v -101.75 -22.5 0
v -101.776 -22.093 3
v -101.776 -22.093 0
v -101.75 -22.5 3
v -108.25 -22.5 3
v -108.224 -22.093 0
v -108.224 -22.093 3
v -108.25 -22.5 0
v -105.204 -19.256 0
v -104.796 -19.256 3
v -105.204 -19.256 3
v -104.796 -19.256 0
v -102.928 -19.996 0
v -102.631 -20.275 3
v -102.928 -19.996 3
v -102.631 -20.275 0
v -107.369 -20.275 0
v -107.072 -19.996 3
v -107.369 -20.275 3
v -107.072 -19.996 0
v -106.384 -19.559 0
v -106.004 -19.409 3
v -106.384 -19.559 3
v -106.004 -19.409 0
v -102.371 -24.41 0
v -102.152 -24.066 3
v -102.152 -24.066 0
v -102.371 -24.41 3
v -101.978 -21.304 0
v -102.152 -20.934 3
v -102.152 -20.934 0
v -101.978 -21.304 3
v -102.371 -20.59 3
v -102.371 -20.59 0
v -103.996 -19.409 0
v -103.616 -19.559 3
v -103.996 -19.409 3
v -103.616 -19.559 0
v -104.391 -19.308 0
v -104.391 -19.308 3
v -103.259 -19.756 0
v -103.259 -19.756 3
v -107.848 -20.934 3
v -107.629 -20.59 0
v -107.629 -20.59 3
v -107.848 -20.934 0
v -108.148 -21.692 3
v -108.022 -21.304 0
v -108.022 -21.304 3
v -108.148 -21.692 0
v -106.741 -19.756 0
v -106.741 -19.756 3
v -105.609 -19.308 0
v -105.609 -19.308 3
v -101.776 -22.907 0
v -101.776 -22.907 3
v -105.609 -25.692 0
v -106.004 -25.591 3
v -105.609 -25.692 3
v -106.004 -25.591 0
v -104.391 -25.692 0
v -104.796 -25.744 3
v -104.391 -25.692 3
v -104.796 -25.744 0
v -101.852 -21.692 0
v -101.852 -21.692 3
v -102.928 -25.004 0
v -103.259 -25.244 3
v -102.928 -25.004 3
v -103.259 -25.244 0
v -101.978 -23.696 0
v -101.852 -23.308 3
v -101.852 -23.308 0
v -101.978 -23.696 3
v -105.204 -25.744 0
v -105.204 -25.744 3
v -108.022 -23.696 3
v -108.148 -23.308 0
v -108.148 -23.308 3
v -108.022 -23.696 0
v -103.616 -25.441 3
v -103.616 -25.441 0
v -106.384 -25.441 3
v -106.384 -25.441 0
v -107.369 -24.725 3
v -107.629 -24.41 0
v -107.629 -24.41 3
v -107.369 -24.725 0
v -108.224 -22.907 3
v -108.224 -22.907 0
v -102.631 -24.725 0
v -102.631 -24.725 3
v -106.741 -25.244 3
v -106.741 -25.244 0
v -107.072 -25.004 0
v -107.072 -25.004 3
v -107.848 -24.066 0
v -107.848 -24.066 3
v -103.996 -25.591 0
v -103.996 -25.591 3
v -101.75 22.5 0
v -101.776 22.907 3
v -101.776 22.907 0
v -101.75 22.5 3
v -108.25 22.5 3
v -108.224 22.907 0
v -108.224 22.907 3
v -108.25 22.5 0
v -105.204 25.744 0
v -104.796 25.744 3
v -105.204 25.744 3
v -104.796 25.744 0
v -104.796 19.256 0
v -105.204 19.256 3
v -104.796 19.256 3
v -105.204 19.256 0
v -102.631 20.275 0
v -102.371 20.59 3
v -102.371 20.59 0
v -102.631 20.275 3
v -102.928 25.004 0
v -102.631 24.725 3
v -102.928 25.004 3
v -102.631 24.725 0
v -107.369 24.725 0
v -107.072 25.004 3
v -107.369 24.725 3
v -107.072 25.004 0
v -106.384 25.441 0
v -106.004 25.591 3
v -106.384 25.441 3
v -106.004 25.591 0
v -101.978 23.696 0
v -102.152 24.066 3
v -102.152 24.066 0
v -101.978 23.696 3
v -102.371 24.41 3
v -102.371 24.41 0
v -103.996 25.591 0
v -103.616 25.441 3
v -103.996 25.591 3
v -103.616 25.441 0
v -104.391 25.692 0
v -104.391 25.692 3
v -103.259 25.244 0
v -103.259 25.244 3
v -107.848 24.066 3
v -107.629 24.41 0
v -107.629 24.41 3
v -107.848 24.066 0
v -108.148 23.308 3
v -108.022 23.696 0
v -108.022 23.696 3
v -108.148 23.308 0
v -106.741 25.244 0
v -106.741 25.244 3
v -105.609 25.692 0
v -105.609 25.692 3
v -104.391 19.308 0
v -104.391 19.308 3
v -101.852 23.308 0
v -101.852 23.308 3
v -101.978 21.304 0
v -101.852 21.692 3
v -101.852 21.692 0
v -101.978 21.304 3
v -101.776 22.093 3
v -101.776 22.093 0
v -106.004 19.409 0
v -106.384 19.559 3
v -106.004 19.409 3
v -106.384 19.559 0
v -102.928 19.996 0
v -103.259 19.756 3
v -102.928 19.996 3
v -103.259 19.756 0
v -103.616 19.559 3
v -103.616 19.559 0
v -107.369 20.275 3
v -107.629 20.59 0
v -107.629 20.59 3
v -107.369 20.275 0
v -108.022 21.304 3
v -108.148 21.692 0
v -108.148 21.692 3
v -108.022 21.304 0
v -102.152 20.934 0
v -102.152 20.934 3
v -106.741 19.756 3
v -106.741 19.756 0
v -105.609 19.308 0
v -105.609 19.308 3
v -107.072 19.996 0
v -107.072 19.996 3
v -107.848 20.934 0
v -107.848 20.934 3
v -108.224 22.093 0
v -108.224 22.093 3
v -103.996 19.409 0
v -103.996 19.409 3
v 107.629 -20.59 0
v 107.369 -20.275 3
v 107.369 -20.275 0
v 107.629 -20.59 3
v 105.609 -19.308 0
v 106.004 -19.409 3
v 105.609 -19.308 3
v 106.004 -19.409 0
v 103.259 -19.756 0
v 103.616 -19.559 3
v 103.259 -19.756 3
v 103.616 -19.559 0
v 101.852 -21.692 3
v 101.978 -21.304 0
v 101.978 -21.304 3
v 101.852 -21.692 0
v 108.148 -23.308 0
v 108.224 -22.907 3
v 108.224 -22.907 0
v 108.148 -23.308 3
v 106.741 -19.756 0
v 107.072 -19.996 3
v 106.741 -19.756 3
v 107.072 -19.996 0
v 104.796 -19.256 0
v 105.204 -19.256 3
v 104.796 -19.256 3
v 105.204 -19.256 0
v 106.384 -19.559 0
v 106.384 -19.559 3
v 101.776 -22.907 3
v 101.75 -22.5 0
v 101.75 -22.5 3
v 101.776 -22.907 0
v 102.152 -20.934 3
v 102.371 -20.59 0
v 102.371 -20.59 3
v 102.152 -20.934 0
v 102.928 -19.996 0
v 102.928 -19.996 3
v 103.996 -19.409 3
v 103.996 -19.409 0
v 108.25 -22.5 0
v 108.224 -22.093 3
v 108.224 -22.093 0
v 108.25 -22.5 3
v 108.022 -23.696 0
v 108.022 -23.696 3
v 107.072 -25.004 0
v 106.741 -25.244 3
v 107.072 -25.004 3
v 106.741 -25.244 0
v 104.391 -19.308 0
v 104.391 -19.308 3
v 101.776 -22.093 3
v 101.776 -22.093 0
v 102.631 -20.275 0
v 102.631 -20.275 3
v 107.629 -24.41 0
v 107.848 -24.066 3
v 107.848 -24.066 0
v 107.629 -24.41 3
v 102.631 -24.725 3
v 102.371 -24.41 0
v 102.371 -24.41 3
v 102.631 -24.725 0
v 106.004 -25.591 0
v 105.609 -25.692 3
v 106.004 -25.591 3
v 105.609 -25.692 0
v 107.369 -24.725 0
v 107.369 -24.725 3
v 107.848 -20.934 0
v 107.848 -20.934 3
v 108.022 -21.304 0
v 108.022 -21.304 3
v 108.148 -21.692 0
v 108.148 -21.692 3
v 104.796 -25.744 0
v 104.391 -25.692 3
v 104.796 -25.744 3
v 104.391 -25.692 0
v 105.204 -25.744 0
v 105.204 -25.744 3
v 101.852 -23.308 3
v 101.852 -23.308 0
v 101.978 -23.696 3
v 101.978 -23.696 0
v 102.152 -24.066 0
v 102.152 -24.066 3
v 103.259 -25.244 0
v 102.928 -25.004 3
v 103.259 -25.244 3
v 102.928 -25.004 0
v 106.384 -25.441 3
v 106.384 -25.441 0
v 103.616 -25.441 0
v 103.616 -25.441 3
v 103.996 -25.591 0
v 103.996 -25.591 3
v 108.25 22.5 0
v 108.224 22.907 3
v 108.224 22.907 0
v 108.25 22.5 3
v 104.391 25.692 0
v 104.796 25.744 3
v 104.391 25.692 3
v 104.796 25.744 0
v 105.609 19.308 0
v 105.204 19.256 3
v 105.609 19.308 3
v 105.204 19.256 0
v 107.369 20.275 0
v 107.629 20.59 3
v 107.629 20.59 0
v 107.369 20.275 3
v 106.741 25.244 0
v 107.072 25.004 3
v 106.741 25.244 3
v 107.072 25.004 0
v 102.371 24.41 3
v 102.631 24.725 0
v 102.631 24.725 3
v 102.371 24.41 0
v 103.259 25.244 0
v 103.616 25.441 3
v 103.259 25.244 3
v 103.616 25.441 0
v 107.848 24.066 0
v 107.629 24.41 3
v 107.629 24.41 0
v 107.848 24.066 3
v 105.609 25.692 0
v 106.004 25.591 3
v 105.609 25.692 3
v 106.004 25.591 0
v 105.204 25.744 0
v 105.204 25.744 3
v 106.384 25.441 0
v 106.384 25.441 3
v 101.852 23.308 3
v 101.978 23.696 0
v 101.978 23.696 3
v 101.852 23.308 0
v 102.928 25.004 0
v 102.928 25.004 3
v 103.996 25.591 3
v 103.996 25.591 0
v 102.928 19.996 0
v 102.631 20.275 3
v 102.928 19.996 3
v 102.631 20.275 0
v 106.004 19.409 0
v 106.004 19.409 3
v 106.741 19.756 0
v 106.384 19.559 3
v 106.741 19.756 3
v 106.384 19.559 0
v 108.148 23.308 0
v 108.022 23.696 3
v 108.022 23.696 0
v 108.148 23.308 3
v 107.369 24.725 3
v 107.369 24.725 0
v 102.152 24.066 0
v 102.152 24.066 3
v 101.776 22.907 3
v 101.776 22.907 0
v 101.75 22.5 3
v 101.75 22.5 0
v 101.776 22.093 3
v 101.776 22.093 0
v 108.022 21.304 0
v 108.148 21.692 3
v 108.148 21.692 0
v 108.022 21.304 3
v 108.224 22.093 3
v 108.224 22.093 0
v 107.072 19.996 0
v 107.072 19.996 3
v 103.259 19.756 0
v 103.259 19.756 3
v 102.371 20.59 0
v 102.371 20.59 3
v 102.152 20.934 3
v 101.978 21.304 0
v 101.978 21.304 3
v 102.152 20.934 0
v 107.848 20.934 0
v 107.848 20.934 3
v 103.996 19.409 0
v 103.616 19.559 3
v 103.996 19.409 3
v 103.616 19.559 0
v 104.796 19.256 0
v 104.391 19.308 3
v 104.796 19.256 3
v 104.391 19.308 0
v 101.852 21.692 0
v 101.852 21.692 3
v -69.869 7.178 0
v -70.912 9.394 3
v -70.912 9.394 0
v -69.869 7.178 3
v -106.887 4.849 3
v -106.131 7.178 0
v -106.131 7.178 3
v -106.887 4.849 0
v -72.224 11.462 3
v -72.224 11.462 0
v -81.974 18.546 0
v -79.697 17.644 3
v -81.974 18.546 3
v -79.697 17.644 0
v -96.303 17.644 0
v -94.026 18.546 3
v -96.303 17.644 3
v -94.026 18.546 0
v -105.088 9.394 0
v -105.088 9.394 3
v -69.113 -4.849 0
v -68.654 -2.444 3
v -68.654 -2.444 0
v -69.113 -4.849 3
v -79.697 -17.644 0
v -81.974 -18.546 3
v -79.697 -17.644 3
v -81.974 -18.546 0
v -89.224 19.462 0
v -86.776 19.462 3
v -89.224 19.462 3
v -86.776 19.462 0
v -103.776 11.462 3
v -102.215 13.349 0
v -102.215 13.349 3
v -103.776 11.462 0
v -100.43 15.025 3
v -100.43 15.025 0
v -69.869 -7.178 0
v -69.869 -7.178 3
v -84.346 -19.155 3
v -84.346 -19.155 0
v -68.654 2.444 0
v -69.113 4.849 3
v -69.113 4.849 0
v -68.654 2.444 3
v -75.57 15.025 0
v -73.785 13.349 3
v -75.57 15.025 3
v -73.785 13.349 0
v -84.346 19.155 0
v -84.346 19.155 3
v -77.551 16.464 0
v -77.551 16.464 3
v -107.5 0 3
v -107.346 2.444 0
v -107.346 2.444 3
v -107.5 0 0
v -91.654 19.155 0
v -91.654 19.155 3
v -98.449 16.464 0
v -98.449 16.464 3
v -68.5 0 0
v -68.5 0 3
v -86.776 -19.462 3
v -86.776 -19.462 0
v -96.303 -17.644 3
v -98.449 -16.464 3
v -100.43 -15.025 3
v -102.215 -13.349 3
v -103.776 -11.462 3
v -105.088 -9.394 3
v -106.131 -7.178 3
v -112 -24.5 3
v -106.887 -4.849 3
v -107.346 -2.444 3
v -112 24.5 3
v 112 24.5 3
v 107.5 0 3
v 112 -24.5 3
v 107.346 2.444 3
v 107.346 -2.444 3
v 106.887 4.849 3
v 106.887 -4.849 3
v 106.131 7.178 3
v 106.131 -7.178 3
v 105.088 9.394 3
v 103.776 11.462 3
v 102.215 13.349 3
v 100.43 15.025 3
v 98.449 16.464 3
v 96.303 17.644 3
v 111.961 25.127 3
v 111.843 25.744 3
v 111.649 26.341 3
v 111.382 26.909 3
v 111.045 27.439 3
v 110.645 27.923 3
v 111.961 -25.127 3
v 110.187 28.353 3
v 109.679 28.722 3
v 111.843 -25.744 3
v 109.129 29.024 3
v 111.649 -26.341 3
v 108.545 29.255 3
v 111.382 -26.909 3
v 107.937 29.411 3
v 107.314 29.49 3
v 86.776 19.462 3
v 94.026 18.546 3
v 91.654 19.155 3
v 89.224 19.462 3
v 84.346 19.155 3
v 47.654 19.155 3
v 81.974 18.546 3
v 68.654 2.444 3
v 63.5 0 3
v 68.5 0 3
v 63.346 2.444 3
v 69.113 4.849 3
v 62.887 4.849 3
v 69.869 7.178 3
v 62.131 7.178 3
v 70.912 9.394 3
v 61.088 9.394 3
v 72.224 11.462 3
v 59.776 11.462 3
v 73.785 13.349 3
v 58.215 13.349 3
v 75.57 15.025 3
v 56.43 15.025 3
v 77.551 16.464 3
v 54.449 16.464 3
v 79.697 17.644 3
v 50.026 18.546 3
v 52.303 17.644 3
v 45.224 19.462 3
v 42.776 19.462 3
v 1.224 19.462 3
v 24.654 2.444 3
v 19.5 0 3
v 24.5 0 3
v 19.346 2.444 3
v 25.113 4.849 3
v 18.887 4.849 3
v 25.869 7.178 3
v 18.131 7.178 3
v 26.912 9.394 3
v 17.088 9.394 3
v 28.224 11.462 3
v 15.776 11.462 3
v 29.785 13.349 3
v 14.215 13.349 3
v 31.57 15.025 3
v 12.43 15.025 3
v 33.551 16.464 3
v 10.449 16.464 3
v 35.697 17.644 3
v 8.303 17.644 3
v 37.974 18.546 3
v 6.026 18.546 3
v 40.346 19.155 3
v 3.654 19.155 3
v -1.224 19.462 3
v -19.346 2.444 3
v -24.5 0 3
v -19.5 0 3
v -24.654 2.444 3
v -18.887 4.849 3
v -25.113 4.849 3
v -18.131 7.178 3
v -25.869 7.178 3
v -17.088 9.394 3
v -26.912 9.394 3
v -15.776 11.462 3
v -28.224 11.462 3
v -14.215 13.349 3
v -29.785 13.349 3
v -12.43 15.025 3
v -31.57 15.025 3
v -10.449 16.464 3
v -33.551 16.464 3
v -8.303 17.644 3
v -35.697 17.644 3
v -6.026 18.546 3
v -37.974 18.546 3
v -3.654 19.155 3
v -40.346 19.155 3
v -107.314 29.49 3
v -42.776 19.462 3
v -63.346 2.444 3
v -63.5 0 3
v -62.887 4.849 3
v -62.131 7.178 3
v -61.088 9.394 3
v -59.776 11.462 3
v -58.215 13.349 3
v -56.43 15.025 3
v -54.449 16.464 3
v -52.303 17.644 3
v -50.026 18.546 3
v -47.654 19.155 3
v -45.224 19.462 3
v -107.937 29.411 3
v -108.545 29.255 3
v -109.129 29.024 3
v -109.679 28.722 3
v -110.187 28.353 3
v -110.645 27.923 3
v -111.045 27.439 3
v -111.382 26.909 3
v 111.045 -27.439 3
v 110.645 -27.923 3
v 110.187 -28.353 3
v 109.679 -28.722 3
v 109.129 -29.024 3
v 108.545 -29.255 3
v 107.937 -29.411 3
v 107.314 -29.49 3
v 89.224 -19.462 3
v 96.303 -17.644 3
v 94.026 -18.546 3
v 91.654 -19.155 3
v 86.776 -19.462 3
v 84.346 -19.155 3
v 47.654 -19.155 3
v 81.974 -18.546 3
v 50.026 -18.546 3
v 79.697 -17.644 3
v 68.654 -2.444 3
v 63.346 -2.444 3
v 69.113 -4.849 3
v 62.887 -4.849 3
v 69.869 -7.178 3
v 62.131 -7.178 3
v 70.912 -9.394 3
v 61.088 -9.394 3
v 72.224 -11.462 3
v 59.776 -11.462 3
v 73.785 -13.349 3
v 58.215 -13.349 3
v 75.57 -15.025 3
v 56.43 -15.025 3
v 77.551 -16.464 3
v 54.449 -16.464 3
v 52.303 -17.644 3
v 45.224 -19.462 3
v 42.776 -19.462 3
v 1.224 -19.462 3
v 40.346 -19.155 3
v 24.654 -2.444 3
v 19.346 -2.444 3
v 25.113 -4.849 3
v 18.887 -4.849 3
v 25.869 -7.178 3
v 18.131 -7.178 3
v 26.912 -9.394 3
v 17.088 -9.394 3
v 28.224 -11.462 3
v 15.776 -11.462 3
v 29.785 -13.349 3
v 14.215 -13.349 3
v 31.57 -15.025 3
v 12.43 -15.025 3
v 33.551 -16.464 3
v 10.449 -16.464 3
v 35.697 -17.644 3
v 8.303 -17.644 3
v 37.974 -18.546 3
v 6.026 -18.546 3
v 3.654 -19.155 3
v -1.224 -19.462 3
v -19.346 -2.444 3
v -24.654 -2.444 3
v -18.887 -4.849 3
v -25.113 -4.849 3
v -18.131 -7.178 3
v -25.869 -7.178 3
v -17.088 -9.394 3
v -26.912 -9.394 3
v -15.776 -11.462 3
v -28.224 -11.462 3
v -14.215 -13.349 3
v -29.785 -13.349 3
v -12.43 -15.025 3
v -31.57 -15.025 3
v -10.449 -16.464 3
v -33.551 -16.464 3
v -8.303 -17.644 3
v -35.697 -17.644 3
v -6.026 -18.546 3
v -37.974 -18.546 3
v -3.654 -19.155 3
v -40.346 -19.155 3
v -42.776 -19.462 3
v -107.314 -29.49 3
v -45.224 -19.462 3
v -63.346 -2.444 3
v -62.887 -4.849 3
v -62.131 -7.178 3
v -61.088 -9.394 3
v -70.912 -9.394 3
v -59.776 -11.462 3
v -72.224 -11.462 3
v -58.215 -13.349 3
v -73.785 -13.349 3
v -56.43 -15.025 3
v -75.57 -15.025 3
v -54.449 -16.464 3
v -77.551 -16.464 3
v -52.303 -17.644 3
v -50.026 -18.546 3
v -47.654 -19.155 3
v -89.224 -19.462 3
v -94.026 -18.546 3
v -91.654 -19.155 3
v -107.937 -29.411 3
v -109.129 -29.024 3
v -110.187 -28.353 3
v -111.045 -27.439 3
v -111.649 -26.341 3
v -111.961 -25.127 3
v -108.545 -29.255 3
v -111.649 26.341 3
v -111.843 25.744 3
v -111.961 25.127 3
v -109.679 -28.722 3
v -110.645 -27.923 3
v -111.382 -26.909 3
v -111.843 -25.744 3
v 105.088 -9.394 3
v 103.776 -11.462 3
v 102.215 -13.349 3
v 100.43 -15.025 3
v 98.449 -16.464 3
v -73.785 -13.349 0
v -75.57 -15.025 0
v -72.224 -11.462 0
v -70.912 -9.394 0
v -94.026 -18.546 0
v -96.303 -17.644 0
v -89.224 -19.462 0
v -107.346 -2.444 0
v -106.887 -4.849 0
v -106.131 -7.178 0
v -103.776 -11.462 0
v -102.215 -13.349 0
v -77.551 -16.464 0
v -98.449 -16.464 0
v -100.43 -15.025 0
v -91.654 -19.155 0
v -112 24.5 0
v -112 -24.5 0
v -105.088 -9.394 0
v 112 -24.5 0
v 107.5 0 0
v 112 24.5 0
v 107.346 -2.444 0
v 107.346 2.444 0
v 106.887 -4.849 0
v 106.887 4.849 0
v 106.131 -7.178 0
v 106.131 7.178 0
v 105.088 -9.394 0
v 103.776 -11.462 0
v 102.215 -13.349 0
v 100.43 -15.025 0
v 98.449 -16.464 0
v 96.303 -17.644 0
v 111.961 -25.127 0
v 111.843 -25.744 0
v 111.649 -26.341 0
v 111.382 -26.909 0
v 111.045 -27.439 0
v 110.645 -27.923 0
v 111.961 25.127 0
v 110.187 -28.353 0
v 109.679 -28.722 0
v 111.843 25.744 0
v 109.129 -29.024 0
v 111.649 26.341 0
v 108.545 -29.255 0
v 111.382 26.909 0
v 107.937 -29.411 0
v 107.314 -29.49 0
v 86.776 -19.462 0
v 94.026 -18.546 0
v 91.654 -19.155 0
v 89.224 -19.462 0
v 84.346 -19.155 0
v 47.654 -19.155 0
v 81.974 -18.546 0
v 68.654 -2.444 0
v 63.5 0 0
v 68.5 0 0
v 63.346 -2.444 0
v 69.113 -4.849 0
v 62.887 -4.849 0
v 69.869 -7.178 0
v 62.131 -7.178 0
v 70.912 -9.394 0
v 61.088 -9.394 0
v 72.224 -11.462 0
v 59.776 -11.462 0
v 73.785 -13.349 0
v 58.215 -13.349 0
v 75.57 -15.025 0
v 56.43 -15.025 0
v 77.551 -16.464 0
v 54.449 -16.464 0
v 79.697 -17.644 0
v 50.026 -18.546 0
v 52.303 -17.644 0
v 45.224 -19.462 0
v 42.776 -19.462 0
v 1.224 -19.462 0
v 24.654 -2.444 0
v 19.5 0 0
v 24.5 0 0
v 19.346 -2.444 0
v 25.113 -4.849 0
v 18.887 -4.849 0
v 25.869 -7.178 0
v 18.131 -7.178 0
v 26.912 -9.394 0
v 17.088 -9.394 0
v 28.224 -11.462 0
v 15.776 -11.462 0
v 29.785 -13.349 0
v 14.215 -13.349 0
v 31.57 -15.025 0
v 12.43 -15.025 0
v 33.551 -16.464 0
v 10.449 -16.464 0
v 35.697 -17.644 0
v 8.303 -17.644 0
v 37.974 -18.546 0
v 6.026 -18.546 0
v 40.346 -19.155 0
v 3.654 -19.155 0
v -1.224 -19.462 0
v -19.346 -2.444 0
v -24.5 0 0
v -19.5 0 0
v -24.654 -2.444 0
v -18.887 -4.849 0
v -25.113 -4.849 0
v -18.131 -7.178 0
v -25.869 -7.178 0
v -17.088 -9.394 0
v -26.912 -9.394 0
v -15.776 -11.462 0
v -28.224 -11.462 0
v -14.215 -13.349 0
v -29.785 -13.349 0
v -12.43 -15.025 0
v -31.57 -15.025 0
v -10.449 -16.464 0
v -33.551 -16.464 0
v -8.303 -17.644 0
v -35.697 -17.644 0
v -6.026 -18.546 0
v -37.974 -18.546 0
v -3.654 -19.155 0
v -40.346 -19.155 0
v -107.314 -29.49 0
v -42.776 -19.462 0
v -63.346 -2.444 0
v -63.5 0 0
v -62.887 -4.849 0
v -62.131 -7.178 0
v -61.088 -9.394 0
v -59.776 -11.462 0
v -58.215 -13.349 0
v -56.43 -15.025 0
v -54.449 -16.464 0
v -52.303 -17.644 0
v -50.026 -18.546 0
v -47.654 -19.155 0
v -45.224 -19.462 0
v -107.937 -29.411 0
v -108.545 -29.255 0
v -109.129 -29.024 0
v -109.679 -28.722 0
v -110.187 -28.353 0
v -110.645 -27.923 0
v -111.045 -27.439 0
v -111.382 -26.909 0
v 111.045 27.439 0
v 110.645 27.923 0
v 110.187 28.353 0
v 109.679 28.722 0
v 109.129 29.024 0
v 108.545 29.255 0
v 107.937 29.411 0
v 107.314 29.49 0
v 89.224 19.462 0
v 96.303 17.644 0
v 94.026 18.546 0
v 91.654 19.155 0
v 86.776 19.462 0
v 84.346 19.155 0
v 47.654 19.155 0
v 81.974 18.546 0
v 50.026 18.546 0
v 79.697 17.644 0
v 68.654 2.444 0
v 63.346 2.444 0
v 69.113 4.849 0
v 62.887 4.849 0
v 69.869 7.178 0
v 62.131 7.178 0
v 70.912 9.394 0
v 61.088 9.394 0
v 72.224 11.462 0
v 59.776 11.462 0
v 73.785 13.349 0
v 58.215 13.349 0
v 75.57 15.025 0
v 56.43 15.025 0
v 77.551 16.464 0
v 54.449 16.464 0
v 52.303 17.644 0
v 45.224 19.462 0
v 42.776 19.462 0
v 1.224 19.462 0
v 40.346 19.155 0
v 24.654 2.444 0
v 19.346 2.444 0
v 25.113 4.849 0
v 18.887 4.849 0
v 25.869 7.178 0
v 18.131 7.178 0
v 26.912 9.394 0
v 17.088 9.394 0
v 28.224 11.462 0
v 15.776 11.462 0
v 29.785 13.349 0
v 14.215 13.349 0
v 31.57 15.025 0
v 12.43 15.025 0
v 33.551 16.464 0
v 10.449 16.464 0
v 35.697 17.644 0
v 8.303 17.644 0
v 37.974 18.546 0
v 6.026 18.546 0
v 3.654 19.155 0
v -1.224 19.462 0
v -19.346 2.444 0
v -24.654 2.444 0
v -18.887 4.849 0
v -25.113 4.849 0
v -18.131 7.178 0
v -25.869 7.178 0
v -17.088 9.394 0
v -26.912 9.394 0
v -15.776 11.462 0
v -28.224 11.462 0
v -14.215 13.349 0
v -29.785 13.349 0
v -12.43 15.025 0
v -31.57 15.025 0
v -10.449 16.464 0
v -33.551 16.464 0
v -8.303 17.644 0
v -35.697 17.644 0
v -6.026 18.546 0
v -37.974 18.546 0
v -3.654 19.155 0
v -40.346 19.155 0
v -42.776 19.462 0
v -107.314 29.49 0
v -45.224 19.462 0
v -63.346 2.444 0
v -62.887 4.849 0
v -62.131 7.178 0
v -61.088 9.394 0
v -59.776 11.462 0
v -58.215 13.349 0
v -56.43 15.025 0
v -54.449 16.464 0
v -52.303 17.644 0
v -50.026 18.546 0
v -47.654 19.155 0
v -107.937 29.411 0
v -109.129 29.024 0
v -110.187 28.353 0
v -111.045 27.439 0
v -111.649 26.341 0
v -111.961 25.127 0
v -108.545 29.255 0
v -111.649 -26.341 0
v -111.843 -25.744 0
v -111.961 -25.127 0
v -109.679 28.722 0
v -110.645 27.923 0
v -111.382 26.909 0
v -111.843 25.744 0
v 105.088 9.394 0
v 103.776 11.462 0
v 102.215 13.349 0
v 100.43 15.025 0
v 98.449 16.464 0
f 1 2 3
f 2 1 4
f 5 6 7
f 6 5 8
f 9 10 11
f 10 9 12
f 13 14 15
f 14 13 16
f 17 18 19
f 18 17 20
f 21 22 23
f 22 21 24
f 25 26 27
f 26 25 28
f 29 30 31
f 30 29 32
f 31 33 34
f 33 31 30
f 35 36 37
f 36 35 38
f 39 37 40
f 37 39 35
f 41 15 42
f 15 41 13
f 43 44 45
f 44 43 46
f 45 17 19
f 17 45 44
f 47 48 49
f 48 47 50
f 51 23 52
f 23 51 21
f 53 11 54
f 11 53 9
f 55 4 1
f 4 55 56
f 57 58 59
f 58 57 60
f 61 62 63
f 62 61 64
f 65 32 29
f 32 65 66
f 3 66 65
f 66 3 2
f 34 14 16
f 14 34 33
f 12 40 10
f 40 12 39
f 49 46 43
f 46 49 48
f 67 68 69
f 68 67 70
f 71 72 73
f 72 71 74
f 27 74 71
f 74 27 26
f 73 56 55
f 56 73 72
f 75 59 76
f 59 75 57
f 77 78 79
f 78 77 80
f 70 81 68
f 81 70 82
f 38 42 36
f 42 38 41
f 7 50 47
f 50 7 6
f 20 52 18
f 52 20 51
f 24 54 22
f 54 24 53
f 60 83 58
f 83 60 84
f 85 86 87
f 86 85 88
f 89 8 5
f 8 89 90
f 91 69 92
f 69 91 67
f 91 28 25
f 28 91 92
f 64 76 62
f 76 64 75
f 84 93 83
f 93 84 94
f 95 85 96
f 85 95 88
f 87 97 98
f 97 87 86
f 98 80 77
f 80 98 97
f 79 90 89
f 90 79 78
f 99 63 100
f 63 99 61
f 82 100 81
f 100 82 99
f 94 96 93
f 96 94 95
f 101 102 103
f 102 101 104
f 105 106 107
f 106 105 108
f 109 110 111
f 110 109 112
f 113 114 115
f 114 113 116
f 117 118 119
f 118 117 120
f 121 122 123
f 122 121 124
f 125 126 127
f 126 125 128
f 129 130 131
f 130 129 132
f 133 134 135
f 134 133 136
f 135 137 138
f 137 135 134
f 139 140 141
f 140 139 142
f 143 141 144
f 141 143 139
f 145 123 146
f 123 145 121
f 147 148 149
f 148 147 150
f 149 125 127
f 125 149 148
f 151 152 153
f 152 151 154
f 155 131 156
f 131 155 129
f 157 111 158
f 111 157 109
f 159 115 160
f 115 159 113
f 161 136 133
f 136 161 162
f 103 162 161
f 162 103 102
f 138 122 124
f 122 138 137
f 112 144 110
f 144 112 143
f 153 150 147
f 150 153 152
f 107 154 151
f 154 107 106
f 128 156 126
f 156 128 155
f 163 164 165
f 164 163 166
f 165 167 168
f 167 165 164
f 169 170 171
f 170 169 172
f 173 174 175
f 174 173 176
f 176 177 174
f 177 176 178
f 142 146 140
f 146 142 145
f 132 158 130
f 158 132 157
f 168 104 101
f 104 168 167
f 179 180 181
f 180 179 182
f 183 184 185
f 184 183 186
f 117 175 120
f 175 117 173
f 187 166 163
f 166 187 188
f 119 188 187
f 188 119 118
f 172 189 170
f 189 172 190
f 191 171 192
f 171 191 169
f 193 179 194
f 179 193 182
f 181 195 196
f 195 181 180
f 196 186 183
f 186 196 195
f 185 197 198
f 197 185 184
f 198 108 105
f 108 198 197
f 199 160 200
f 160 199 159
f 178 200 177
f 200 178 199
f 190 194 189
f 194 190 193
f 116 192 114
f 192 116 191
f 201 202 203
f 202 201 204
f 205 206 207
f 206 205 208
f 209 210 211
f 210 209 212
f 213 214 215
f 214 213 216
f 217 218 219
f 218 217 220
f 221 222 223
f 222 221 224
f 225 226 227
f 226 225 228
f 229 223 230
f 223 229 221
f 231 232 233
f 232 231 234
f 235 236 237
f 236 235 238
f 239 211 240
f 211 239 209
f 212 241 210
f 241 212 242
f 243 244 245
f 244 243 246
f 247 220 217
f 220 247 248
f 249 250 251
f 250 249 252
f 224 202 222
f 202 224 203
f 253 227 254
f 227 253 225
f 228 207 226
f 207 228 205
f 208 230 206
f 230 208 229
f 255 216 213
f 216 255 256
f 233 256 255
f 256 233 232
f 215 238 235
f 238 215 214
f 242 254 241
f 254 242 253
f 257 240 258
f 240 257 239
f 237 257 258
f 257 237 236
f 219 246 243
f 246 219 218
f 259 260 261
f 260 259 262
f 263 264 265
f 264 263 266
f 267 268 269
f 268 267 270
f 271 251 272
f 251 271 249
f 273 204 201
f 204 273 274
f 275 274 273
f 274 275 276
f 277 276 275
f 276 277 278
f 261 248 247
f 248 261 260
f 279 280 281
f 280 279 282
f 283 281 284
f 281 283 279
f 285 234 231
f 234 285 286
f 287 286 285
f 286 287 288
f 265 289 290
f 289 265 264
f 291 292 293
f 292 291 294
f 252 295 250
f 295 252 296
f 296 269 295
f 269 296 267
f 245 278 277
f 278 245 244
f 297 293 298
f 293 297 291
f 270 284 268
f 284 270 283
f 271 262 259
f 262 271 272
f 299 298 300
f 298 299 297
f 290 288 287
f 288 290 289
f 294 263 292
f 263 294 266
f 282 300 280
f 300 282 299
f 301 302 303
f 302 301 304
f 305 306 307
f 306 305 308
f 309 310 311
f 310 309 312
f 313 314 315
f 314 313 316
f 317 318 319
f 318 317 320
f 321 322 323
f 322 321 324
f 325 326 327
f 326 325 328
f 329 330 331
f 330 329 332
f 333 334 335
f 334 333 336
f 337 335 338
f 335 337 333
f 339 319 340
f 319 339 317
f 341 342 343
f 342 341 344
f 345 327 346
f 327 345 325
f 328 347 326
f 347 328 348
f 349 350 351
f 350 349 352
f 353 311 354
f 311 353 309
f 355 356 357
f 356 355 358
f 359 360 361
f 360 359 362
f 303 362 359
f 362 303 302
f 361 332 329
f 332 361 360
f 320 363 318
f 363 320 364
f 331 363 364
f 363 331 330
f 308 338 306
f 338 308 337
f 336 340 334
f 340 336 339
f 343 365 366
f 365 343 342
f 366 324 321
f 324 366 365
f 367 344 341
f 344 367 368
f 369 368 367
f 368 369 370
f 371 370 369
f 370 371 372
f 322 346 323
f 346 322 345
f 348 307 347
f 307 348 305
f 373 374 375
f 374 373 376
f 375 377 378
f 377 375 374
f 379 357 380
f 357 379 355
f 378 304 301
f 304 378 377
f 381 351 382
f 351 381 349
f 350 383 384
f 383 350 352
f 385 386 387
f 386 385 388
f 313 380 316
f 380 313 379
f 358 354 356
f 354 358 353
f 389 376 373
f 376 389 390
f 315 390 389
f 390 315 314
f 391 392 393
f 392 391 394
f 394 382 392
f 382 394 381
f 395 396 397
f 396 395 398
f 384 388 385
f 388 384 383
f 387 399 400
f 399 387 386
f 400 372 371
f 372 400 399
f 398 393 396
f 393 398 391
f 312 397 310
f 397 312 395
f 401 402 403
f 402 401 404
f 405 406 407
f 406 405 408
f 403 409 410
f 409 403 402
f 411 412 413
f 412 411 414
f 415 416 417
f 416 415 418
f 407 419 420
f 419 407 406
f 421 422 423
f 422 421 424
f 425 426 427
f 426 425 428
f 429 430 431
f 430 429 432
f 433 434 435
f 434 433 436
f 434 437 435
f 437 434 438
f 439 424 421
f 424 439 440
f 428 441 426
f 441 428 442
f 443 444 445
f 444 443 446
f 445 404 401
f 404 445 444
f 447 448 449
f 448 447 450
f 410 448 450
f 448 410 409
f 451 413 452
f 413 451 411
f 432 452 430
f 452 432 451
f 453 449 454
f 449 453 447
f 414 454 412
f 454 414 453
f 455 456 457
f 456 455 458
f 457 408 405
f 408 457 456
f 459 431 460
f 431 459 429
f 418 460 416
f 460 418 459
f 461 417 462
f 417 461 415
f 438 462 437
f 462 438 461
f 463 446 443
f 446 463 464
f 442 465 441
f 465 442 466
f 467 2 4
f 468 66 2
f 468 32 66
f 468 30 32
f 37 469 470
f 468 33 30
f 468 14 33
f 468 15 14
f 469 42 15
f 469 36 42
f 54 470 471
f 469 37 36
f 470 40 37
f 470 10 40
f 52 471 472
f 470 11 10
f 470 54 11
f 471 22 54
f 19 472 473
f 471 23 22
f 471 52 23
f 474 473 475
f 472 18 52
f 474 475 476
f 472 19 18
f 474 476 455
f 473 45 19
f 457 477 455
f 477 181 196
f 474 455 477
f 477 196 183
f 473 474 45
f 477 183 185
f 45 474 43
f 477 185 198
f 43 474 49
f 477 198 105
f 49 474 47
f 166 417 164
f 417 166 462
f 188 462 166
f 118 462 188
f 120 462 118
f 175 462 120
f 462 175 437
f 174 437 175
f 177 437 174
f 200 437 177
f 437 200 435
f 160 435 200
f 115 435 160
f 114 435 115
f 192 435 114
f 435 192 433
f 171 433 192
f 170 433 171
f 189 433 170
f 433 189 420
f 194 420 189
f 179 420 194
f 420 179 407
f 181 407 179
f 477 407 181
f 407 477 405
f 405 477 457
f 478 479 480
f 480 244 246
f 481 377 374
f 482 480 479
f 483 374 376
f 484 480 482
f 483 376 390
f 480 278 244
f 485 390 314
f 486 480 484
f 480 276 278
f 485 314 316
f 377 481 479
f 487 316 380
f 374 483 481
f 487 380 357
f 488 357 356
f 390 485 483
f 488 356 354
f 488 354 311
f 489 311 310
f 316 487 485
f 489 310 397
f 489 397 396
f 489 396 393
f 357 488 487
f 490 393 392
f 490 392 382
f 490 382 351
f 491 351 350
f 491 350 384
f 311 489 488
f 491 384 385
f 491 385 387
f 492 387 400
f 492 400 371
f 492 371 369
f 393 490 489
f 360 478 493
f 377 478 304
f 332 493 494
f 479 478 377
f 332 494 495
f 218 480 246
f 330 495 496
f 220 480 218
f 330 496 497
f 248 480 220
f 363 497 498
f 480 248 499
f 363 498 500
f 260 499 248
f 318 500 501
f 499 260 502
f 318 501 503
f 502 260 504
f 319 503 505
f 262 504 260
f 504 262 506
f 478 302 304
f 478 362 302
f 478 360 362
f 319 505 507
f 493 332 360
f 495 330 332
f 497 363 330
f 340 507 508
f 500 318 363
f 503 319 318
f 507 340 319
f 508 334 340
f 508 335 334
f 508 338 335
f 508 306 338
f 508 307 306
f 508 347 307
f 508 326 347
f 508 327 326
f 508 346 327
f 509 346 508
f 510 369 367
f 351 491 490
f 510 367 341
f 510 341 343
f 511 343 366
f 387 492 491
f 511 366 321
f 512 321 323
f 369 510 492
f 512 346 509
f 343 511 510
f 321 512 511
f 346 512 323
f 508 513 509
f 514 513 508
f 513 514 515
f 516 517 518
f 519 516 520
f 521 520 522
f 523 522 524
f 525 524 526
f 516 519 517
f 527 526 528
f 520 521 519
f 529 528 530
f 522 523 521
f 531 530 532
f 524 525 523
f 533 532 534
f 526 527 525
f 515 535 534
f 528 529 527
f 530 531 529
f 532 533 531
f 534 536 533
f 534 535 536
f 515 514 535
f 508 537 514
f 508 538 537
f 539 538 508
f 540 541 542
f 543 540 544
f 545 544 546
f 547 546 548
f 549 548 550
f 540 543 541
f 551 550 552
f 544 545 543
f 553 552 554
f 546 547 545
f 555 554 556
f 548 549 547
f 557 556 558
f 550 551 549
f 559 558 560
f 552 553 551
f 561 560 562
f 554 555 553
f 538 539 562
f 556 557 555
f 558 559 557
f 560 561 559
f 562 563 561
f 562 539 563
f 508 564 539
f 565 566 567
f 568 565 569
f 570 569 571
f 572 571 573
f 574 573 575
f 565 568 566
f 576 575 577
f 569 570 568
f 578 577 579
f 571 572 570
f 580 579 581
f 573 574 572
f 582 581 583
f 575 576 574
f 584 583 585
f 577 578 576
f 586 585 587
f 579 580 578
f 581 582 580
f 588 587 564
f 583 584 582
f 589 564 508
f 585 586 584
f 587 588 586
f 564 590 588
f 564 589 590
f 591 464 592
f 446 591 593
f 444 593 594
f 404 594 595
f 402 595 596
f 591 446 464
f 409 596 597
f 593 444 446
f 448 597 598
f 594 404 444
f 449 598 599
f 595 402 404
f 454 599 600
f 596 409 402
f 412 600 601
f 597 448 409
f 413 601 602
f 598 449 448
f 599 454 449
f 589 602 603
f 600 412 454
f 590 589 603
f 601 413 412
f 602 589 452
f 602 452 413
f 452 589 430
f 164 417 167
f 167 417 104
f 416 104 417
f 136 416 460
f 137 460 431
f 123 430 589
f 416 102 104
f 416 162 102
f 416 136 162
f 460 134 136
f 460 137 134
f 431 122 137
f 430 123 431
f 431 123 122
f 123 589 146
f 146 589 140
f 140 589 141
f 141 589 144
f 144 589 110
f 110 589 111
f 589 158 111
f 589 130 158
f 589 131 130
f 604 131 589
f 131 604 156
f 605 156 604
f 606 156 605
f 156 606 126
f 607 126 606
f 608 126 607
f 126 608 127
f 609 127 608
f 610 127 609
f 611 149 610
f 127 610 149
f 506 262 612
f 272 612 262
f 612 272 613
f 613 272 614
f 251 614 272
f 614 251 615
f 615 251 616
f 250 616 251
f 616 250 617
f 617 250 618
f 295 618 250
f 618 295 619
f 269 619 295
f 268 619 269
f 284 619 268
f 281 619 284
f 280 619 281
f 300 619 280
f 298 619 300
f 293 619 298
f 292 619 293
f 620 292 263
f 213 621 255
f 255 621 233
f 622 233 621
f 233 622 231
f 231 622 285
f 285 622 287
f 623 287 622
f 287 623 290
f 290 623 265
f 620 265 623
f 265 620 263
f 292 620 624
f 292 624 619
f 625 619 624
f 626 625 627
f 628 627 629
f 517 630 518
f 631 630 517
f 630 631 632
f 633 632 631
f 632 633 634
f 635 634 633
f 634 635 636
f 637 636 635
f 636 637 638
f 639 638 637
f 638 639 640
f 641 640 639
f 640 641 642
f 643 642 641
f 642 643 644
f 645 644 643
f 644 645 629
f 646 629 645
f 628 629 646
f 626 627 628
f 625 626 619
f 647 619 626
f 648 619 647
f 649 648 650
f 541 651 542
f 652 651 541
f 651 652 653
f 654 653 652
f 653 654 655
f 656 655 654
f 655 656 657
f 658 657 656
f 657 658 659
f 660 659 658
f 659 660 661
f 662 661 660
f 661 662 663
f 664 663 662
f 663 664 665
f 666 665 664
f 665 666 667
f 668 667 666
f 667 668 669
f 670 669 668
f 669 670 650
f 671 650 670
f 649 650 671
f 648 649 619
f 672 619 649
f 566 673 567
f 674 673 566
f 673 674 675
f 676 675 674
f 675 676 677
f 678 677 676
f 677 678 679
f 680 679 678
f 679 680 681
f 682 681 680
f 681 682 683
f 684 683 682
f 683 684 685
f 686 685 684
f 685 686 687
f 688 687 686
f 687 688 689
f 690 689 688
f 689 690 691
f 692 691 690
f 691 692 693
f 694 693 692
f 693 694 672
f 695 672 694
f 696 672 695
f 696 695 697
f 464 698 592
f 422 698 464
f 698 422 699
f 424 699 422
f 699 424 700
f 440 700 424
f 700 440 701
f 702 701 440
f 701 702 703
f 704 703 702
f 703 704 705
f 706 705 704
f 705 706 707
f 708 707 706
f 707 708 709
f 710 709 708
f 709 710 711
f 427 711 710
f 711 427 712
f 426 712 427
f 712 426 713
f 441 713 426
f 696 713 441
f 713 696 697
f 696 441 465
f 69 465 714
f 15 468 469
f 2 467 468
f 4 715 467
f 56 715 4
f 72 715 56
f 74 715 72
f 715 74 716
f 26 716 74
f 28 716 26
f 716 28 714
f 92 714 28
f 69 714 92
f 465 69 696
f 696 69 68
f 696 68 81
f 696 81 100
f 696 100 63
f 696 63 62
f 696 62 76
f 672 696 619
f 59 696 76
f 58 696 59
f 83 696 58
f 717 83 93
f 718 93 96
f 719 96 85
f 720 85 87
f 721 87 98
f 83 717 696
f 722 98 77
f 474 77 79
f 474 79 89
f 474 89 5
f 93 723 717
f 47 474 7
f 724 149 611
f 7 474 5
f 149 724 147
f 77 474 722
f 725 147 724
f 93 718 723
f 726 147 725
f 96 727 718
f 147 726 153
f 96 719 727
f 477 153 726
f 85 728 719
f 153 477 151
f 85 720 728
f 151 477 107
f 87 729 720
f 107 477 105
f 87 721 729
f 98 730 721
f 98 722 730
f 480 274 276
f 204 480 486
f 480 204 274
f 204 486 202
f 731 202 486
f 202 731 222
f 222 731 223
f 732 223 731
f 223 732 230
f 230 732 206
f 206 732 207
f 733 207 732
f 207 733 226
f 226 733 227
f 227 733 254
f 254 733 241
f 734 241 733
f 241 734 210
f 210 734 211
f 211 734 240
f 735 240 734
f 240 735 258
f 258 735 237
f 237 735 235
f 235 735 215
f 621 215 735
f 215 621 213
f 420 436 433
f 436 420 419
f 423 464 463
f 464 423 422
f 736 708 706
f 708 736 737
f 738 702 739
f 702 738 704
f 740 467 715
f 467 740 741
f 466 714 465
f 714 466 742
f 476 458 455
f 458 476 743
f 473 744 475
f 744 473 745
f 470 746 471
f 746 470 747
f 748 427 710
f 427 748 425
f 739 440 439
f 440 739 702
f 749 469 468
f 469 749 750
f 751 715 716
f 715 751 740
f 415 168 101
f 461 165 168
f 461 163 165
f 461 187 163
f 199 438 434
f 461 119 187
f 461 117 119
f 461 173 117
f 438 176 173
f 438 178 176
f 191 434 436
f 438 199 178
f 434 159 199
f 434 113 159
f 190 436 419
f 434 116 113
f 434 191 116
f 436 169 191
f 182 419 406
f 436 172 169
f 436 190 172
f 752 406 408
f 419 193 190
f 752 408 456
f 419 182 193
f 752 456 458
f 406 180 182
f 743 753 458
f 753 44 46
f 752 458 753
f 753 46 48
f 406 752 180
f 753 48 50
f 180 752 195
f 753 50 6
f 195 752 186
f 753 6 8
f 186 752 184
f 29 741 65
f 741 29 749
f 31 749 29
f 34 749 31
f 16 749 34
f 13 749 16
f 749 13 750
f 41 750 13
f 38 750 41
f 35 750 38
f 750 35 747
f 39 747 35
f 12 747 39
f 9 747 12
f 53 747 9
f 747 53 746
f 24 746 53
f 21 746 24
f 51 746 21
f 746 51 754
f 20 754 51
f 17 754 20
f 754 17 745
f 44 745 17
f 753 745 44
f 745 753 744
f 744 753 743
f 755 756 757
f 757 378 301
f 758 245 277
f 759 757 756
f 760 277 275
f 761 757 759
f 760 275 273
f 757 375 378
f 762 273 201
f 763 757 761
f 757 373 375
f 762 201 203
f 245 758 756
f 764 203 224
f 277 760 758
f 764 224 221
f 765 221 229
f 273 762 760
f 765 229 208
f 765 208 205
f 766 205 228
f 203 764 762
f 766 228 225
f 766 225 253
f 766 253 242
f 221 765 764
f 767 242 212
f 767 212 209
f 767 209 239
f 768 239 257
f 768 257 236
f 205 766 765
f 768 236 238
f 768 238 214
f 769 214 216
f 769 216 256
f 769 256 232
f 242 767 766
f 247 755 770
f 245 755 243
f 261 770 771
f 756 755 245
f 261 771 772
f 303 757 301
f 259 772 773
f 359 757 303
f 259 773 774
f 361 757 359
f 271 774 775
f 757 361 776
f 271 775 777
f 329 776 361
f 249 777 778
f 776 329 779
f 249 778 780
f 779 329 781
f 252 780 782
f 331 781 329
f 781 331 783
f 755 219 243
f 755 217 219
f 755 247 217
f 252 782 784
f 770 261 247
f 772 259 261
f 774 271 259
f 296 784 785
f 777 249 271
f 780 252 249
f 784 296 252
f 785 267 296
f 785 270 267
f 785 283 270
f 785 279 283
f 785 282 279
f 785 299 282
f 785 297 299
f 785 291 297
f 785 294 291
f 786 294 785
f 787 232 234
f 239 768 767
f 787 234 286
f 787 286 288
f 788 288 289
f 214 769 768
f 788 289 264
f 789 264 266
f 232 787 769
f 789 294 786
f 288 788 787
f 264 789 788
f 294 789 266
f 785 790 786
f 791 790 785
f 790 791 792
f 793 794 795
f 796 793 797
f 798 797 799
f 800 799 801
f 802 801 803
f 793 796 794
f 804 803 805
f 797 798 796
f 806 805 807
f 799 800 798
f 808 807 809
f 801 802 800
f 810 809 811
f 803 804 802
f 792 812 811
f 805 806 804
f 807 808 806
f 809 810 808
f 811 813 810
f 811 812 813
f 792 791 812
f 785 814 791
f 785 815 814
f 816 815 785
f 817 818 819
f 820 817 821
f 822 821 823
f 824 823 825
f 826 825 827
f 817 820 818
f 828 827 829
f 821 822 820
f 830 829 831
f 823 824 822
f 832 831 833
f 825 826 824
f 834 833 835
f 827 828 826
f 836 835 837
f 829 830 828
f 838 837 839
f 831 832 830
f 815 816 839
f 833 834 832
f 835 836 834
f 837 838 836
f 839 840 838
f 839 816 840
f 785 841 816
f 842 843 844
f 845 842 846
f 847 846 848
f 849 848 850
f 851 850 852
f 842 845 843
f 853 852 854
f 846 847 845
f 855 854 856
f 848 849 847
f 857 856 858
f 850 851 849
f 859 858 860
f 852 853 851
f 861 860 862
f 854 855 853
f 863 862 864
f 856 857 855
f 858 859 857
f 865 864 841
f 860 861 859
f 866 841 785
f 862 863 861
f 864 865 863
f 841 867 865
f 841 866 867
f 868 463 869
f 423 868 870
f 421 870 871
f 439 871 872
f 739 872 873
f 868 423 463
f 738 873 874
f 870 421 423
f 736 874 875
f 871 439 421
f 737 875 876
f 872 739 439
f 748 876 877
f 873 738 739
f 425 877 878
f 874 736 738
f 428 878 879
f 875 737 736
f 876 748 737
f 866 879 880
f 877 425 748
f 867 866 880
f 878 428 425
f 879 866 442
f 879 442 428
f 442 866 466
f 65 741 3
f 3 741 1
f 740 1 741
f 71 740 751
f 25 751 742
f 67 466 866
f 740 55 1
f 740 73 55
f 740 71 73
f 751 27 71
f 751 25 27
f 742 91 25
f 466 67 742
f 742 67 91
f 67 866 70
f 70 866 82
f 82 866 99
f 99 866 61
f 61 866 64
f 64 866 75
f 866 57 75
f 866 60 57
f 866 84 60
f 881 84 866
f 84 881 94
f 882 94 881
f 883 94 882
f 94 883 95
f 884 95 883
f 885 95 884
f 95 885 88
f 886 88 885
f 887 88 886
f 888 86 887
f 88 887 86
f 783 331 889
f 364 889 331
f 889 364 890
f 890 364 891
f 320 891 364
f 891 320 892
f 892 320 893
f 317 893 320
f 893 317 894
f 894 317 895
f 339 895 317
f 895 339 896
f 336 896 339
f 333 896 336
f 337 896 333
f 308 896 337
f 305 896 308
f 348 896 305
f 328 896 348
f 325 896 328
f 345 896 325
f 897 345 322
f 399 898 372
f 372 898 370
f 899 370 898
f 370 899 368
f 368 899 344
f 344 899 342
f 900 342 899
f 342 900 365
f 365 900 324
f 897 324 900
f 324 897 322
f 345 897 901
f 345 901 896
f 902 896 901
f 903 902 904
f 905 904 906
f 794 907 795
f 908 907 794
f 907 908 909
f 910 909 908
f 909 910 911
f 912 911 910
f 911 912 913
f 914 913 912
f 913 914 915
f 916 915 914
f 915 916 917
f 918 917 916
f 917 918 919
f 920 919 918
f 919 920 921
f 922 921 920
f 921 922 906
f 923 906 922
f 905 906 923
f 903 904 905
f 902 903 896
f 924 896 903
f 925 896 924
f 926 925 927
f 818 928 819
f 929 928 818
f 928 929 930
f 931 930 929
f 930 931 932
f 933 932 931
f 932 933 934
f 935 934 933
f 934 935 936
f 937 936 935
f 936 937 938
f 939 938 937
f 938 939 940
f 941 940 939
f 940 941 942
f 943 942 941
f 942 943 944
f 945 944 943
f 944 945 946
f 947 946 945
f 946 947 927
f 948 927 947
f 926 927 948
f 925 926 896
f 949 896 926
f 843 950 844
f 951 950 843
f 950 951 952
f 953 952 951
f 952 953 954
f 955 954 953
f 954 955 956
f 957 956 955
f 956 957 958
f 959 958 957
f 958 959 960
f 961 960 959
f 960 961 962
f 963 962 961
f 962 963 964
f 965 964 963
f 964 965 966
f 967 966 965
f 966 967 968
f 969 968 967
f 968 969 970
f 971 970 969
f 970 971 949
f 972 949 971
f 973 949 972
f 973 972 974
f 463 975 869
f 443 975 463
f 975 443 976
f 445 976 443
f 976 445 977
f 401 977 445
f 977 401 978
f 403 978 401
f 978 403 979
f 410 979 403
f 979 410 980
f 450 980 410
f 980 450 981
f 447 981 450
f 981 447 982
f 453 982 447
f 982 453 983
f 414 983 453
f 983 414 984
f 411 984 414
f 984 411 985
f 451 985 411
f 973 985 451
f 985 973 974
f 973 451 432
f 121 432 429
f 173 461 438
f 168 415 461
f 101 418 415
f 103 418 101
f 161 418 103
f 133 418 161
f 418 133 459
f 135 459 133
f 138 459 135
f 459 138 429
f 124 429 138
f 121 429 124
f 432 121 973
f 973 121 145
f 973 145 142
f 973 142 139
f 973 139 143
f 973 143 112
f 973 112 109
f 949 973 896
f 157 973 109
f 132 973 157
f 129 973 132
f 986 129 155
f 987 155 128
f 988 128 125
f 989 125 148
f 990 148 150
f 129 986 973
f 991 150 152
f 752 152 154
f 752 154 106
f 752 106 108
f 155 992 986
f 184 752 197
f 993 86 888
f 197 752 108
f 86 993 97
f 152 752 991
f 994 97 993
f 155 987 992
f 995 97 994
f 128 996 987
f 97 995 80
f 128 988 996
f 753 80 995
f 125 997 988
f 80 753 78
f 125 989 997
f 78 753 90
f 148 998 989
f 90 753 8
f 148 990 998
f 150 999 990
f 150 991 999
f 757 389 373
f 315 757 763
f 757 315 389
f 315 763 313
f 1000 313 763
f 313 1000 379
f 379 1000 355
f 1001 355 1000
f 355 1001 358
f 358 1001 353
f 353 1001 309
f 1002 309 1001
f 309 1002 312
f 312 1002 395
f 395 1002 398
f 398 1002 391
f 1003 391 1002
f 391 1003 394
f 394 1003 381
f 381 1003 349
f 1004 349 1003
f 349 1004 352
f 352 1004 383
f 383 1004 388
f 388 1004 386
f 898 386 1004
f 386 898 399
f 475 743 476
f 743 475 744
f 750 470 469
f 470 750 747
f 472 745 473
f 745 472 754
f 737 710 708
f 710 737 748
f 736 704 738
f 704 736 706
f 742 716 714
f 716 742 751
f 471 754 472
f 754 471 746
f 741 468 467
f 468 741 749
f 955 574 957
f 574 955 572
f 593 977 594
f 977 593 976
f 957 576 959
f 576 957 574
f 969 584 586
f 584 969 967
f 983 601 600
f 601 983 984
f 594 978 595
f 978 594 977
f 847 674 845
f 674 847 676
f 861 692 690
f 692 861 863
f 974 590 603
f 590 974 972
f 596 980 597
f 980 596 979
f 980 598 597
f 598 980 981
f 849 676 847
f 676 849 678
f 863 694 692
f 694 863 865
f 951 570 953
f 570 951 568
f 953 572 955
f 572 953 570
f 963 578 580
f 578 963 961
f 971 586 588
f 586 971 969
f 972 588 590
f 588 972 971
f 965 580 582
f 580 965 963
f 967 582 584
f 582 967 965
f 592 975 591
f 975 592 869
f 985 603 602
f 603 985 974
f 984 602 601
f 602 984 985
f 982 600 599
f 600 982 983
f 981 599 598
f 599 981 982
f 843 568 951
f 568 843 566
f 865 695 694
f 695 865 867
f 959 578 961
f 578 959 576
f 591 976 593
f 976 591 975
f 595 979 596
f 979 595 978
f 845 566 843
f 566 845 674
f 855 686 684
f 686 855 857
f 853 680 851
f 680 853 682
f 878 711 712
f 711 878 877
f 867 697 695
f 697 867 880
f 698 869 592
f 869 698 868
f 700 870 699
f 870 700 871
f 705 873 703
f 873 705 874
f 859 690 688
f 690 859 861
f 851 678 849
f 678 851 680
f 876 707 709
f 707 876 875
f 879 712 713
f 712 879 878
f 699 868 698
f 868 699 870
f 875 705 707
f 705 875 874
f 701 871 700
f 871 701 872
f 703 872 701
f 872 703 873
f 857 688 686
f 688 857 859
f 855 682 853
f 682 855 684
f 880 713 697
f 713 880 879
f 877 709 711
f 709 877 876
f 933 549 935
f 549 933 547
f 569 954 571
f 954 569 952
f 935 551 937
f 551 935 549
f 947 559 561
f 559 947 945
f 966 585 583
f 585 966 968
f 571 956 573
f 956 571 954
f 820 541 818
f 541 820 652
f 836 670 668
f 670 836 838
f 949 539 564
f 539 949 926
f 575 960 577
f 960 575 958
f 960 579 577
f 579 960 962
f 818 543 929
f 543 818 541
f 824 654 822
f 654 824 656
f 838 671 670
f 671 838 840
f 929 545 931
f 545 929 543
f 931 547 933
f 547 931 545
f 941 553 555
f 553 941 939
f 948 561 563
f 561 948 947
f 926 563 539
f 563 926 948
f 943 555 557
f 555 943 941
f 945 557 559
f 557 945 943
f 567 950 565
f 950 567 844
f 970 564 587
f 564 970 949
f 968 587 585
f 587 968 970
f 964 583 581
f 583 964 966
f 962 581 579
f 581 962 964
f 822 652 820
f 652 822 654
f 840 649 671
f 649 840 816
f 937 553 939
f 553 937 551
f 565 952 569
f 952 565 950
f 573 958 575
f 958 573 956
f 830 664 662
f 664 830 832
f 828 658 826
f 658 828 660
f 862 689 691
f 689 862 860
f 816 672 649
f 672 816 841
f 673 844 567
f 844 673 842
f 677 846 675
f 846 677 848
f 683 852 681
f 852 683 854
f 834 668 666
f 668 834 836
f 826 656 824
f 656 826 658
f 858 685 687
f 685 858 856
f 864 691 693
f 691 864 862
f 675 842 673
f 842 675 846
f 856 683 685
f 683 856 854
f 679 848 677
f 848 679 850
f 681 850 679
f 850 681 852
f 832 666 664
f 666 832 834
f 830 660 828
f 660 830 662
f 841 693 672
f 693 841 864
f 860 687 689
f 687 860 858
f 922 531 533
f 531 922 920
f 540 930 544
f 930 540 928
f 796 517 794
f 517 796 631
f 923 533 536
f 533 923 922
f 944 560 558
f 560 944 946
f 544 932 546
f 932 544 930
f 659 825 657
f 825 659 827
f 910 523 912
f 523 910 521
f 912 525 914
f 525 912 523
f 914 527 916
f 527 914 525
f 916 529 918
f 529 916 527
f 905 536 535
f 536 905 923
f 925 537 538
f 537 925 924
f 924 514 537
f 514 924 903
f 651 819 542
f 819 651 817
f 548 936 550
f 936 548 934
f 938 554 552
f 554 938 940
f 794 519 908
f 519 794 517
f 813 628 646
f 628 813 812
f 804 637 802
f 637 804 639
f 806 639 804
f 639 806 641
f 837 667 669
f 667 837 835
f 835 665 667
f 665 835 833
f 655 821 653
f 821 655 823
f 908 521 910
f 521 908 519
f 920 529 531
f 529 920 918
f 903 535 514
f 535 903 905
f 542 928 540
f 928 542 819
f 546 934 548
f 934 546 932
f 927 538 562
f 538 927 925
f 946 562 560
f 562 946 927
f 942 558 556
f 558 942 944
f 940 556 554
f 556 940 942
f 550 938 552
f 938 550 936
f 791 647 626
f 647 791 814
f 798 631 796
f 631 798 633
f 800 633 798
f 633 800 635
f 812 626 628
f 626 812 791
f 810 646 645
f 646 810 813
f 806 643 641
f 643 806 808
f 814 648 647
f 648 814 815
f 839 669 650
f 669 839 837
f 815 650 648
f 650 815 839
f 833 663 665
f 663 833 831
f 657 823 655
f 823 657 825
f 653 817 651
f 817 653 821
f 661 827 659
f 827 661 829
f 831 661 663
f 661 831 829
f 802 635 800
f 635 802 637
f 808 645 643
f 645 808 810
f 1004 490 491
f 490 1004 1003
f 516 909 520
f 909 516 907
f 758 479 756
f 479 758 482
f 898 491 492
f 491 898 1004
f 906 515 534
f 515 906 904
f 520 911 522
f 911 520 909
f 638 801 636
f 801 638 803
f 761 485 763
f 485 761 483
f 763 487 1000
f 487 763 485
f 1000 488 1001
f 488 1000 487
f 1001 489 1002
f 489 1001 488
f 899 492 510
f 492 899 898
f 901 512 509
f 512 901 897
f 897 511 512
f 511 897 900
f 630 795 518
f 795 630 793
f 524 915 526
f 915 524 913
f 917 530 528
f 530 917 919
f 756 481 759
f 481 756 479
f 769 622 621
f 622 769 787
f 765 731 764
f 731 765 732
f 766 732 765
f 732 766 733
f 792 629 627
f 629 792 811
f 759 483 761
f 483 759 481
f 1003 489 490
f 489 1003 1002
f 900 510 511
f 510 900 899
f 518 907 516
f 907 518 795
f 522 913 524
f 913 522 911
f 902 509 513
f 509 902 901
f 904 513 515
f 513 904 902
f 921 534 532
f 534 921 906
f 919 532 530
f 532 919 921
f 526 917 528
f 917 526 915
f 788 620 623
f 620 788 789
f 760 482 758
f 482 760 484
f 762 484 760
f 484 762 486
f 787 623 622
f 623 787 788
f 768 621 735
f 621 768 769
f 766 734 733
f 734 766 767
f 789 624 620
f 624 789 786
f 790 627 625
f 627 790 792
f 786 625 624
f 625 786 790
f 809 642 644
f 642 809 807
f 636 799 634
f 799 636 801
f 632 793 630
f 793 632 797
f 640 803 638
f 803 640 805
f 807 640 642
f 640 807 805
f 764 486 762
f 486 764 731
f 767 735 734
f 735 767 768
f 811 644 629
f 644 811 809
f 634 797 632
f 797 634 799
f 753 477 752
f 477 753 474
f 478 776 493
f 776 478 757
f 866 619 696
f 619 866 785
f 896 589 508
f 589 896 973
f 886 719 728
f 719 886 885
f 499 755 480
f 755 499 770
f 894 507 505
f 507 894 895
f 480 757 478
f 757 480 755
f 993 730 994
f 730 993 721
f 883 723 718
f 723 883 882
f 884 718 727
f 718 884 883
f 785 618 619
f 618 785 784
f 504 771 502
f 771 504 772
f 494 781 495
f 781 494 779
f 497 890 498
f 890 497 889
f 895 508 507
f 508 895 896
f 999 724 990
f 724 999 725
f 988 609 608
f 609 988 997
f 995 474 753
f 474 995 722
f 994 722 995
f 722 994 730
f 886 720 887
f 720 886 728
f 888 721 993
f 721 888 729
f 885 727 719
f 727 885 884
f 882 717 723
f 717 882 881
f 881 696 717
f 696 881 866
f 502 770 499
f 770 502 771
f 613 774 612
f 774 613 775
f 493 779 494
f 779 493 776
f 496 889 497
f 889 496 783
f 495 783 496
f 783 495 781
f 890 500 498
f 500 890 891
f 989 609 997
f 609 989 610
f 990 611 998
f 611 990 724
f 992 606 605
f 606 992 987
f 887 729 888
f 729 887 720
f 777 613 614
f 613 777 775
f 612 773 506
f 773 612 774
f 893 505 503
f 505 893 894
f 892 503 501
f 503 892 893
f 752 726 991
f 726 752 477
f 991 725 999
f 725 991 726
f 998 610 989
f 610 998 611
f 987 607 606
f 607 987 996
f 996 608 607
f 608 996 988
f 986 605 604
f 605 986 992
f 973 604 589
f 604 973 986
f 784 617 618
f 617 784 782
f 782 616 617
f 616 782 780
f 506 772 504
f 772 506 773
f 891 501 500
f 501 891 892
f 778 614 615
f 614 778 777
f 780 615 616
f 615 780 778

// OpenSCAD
$fn = 50;


difference() {
	union() {
		hull() {
			translate(v = [-107.0000000000, 24.5000000000, 0]) {
				cylinder(h = 3, r = 5);
			}
			translate(v = [107.0000000000, 24.5000000000, 0]) {
				cylinder(h = 3, r = 5);
			}
			translate(v = [-107.0000000000, -24.5000000000, 0]) {
				cylinder(h = 3, r = 5);
			}
			translate(v = [107.0000000000, -24.5000000000, 0]) {
				cylinder(h = 3, r = 5);
			}
		}
	}
	union() {
		#translate(v = [-105.0000000000, -22.5000000000, -100.0000000000]) {
			cylinder(h = 200, r = 3.2500000000);
		}
		#translate(v = [-105.0000000000, 22.5000000000, -100.0000000000]) {
			cylinder(h = 200, r = 3.2500000000);
		}
		#translate(v = [105.0000000000, -22.5000000000, -100.0000000000]) {
			cylinder(h = 200, r = 3.2500000000);
		}
		#translate(v = [105.0000000000, 22.5000000000, -100.0000000000]) {
			cylinder(h = 200, r = 3.2500000000);
		}
		#translate(v = [-88.0000000000, 0, 0]) {
			cylinder(h = 3, r = 19.5000000000);
		}
		#translate(v = [-44.0000000000, 0, 0]) {
			cylinder(h = 3, r = 19.5000000000);
		}
		#cylinder(h = 3, r = 19.5000000000);
		#translate(v = [44.0000000000, 0, 0]) {
			cylinder(h = 3, r = 19.5000000000);
		}
		#translate(v = [88.0000000000, 0, 0]) {
			cylinder(h = 3, r = 19.5000000000);
		}
	}
}
